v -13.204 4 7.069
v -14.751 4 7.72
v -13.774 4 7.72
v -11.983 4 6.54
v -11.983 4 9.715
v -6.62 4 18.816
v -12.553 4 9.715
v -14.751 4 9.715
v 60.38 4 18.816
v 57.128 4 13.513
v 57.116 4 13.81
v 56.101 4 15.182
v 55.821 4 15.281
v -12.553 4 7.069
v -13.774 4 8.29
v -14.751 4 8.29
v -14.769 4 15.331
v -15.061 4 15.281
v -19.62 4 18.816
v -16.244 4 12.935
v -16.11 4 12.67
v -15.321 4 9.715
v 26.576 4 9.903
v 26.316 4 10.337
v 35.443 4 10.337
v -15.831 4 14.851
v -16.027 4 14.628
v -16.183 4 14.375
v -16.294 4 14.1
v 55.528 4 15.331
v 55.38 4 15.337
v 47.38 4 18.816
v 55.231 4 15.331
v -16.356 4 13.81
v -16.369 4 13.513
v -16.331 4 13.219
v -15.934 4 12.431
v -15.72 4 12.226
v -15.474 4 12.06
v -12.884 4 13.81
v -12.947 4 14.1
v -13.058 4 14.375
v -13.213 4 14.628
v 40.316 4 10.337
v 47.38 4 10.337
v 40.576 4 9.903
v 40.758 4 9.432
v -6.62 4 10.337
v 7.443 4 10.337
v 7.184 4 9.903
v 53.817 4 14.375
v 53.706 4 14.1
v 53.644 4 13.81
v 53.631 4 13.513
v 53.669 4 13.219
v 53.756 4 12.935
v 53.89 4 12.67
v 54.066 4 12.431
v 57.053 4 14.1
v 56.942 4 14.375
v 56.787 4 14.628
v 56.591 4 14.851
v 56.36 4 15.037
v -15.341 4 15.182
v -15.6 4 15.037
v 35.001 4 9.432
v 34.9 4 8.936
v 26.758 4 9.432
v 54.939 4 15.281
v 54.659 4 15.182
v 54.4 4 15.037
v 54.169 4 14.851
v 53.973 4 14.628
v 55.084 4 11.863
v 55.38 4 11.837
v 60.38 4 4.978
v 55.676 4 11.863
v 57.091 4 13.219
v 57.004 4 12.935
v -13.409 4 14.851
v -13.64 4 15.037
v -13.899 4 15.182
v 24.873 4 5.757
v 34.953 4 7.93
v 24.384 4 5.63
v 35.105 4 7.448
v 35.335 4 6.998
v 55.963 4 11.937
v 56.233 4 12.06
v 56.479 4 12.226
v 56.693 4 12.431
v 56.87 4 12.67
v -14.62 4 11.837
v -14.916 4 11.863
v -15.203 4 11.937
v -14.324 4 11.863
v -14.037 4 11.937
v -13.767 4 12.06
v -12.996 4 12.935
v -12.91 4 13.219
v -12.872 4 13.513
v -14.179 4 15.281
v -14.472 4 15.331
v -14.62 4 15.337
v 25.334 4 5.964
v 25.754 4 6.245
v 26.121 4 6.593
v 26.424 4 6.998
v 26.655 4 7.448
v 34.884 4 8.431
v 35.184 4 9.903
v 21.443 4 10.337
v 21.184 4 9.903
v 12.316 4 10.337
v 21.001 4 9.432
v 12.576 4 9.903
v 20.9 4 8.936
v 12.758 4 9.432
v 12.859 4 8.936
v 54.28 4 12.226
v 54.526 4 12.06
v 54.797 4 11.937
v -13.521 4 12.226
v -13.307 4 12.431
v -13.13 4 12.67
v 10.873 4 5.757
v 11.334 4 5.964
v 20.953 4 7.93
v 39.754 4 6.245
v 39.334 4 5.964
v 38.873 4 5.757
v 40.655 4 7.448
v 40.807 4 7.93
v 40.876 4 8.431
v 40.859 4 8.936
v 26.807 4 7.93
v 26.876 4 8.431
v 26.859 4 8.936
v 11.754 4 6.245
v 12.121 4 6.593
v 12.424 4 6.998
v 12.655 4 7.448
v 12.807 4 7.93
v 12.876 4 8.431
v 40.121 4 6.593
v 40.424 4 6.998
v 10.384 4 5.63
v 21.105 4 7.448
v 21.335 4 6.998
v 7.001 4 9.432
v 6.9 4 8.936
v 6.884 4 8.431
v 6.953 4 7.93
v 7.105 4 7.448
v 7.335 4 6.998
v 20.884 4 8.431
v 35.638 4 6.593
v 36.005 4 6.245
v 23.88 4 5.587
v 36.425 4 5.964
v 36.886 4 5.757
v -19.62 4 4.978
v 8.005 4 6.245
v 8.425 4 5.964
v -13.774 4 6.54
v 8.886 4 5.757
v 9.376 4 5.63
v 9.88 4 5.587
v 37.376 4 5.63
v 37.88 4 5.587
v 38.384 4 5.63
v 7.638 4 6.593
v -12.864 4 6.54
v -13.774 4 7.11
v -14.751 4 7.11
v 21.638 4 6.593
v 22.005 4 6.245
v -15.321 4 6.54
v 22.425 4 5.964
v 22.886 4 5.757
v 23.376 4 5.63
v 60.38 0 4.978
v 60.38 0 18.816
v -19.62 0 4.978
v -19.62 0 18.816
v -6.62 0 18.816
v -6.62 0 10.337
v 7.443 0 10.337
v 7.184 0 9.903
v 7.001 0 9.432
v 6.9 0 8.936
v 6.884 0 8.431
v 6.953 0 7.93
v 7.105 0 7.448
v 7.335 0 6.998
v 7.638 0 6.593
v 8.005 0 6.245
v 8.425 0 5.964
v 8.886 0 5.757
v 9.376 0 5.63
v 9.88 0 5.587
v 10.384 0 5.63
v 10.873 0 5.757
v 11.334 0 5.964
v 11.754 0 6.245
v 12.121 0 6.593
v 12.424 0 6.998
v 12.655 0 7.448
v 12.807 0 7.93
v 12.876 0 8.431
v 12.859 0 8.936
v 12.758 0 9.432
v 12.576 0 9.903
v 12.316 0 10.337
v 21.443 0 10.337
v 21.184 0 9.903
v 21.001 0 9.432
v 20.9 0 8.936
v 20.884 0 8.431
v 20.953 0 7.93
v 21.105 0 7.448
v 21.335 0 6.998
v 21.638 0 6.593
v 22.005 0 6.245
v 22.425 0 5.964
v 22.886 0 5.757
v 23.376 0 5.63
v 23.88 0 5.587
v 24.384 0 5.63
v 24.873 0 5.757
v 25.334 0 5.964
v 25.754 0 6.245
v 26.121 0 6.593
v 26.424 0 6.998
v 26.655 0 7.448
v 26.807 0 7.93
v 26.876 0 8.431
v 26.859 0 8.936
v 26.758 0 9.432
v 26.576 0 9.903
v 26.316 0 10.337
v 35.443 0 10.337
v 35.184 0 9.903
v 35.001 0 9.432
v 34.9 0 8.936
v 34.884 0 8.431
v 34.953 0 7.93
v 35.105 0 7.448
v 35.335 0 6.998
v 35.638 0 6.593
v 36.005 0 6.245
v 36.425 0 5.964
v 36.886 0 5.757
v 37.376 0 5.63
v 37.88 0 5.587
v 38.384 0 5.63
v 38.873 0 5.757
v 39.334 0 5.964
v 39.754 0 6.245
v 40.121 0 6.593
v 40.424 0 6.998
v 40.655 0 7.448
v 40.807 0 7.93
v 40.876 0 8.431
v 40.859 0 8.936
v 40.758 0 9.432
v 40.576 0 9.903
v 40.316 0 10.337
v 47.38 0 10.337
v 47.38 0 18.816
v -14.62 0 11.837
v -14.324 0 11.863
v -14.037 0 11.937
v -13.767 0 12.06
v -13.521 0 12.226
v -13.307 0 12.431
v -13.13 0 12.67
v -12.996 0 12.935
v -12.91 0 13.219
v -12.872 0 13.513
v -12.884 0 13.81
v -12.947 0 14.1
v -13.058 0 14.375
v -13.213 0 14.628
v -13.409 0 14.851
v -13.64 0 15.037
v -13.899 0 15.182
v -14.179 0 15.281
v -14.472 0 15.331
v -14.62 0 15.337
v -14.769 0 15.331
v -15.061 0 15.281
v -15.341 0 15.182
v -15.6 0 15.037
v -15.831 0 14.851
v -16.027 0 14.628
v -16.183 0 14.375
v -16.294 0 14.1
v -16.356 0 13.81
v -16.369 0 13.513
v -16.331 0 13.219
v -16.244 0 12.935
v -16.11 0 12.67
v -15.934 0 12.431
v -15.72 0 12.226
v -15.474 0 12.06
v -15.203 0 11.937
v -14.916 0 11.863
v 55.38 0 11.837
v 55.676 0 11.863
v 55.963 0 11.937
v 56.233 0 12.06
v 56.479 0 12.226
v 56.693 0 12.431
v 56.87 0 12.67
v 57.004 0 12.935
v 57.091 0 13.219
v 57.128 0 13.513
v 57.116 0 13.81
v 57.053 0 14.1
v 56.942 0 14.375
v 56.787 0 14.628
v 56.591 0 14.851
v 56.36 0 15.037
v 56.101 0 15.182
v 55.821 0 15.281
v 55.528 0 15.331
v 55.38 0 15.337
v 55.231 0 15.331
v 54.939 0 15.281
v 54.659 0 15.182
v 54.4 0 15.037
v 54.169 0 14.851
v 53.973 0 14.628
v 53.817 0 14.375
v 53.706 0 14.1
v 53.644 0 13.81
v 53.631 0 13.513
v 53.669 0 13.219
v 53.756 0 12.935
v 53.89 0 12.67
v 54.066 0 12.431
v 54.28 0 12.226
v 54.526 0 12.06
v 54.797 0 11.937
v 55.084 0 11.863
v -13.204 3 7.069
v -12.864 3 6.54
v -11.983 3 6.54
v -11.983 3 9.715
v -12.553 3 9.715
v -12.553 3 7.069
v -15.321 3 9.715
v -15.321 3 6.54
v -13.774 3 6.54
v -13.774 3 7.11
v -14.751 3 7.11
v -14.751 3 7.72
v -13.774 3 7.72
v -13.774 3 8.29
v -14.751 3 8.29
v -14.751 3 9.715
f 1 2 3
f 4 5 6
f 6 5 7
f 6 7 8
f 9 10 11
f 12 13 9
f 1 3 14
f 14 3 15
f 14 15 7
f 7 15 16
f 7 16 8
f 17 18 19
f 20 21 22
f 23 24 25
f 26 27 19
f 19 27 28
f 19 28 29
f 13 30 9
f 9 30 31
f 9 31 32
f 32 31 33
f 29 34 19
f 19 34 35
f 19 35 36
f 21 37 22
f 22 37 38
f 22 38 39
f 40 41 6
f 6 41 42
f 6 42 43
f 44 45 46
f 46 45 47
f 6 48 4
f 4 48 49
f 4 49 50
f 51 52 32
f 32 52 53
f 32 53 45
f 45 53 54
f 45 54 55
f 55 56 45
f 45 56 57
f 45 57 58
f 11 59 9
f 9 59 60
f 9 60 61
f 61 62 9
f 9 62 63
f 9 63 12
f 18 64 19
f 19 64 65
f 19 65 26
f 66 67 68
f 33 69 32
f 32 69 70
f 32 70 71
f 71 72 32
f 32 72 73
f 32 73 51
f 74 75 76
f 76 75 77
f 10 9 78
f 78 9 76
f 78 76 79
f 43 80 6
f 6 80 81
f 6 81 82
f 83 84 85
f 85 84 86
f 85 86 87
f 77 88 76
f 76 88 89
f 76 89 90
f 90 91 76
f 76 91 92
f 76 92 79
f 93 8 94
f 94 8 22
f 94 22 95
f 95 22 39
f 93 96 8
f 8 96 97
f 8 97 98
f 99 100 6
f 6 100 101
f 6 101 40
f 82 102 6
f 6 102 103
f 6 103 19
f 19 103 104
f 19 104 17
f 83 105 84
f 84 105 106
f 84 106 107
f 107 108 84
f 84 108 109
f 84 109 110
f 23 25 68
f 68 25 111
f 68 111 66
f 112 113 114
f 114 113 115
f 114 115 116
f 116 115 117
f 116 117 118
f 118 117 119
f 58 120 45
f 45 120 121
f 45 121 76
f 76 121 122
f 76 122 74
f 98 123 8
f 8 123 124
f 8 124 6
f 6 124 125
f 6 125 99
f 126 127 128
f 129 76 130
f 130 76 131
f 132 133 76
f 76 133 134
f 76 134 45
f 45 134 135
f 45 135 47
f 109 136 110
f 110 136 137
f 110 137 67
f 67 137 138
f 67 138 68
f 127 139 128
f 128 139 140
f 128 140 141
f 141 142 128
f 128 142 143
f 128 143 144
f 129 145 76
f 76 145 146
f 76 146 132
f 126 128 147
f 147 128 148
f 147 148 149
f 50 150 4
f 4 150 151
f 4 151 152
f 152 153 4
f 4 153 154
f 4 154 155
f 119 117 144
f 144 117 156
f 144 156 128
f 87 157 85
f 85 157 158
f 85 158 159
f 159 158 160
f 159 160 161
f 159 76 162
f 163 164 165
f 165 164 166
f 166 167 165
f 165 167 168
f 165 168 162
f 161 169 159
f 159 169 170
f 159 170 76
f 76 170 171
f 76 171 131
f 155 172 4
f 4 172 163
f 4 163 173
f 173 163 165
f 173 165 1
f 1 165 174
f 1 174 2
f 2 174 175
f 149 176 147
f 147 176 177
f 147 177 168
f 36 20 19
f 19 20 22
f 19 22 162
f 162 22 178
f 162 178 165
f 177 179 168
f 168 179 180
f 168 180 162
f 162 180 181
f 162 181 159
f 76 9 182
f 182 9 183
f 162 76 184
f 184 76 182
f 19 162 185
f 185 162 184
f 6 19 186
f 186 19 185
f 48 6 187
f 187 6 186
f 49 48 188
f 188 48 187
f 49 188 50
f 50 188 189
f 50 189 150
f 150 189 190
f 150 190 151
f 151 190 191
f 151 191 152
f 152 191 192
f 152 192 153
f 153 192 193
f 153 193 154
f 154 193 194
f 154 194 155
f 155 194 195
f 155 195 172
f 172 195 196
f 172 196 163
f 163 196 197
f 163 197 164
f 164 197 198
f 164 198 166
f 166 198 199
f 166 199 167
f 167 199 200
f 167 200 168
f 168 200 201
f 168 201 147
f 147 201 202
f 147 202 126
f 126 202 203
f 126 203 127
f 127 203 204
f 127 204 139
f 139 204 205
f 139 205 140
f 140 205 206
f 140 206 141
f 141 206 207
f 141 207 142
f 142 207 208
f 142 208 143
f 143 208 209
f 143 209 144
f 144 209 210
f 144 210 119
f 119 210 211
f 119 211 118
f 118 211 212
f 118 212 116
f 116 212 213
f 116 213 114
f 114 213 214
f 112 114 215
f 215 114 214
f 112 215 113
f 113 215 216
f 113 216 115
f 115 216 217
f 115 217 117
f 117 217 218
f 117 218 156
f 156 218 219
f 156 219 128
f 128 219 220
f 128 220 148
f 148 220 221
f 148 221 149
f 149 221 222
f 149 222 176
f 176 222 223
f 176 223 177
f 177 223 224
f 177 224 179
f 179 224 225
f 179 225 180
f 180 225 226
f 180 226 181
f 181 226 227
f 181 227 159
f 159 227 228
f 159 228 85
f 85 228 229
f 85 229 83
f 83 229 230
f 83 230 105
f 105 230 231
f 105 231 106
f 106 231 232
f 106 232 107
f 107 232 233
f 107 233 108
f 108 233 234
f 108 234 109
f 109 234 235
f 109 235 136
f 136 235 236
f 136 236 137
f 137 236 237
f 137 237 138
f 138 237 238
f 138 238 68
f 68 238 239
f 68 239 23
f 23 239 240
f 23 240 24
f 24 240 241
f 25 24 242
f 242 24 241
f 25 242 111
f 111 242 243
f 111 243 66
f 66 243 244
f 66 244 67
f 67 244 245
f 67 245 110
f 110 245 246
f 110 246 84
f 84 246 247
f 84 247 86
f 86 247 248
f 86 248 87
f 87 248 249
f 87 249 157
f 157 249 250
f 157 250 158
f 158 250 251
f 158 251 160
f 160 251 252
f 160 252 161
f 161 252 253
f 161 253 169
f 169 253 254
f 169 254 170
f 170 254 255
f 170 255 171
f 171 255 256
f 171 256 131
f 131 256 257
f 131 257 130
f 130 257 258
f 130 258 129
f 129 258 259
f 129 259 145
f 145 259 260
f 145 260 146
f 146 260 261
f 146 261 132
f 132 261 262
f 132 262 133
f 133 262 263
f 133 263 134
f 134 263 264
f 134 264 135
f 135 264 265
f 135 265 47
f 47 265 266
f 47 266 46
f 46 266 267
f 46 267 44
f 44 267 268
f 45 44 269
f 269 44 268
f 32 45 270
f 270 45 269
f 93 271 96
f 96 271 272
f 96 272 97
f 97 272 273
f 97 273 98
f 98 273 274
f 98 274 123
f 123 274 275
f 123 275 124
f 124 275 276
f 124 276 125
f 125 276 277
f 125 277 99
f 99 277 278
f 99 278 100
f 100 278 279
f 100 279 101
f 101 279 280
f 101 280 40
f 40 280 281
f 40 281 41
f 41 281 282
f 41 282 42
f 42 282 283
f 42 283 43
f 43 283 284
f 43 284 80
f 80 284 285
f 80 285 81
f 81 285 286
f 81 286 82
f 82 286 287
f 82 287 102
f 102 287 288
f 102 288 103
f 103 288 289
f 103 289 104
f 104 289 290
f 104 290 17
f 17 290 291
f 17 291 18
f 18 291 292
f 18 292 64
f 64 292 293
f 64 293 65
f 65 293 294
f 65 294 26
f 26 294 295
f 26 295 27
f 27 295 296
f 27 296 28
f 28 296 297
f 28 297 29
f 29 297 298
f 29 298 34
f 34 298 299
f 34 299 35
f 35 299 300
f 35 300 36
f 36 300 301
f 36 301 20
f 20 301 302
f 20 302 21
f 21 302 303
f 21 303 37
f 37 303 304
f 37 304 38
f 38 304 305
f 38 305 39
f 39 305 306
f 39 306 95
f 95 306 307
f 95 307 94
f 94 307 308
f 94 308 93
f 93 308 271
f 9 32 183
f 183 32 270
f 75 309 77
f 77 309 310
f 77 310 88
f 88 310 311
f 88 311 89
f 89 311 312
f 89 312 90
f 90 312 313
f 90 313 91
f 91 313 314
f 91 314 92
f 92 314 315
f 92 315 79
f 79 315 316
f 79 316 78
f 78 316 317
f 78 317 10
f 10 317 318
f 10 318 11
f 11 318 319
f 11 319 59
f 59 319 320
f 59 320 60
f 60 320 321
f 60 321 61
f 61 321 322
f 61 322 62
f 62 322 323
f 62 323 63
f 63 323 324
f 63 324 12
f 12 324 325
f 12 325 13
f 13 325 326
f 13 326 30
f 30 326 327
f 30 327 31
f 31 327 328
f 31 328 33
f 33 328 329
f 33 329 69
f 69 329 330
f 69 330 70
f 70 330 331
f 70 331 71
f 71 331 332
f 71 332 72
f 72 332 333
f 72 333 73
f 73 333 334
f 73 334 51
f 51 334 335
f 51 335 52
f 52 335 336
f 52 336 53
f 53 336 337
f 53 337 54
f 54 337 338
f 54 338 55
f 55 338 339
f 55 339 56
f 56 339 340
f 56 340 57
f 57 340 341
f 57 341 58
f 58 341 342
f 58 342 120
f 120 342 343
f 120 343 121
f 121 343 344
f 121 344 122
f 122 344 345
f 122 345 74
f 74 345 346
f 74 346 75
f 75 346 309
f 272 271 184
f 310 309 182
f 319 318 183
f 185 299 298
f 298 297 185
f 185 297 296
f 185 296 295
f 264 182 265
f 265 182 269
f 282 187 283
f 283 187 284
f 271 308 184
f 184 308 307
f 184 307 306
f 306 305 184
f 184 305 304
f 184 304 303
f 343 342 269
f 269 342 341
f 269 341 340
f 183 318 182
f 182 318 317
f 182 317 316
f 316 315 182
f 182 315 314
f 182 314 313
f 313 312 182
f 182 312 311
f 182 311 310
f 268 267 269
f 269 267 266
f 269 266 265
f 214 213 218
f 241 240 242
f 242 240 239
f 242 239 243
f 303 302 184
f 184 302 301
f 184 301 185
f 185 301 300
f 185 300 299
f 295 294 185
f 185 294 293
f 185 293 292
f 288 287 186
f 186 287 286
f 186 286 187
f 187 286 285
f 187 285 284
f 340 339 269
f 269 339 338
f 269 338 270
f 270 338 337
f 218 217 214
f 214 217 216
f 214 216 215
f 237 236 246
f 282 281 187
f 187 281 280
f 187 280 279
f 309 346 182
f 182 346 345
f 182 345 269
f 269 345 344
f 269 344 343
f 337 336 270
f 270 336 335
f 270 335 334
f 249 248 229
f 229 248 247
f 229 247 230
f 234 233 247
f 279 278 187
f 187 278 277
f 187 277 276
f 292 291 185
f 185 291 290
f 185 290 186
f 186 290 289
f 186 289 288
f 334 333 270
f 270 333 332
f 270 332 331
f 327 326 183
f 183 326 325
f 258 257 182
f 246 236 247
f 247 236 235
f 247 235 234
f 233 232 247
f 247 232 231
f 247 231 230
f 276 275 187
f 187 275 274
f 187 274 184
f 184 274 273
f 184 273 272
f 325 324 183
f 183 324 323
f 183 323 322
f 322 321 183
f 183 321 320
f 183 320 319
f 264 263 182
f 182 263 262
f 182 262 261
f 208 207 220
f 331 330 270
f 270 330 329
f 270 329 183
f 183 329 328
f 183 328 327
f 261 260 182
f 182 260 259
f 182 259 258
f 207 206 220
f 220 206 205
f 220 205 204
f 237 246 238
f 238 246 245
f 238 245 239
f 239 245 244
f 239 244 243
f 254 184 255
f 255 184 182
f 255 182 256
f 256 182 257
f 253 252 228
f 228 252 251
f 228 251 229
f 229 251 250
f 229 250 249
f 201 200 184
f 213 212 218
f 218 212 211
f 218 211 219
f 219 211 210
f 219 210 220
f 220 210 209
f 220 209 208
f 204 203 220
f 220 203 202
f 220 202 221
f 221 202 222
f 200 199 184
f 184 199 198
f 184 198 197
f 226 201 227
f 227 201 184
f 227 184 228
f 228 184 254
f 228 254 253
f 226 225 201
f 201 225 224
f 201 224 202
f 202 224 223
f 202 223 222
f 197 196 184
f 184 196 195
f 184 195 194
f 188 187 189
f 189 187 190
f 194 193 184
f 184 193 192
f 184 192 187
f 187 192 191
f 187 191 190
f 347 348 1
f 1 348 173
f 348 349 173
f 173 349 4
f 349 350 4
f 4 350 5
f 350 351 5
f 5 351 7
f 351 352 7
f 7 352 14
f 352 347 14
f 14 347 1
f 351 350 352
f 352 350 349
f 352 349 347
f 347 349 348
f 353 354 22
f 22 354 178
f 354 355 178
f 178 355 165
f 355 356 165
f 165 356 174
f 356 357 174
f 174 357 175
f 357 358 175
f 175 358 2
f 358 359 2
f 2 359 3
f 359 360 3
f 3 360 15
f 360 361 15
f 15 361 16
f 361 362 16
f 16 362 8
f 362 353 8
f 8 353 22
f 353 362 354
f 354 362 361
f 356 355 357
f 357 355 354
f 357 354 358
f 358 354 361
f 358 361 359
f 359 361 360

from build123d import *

# Parameters (mm, degrees)
SKETCH1_R           = 1.75
BOSS_EXTRUDE1_DEPTH = 4
CUT_EXTRUDE1_DEPTH  = 1


with BuildPart() as part:
    # Sketch1 → Boss-Extrude1 (new body)
    with BuildSketch(Plane(origin=(0, 0, 0), x_dir=(1, 0, 0), z_dir=(0, 1, 0))):
        with BuildLine():
            Line((-19.620223818, -18.81631662), (-6.620223818, -18.81631662))
            Line((-6.620223818, -18.81631662), (-6.620223818, -10.337442774))
            Line((-6.620223818, -10.337442774), (7.443077754, -10.337442546))
            ThreePointArc((7.443077754, -10.337442546), (9.879776182, -5.587442326), (12.31647461, -10.337442546))
            Line((12.31647461, -10.337442546), (21.443077647, -10.337442397))
            ThreePointArc((21.443077647, -10.337442397), (23.879776182, -5.587442326), (26.316474717, -10.337442397))
            Line((26.316474717, -10.337442397), (35.443077673, -10.337442433))
            ThreePointArc((35.443077673, -10.337442433), (37.879776182, -5.587442326), (40.316474692, -10.337442433))
            Line((40.316474692, -10.337442433), (47.379776182, -10.33744254))
            Line((47.379776182, -10.33744254), (47.379776182, -18.81631662))
            Line((47.379776182, -18.81631662), (60.379776182, -18.81631662))
            Line((60.379776182, -18.81631662), (60.379776182, -4.977921711))
            Line((60.379776182, -4.977921711), (-19.620223818, -4.977921711))
            Line((-19.620223818, -4.977921711), (-19.620223818, -18.81631662))
        make_face()
        with Locations((-14.620223818, -13.58744255)):
            Circle(SKETCH1_R, mode=Mode.SUBTRACT)
        with Locations((55.379776182, -13.58744255)):
            Circle(SKETCH1_R, mode=Mode.SUBTRACT)
    extrude(amount=BOSS_EXTRUDE1_DEPTH)

    # Sketch2 → Cut-Extrude1 (cut)
    with BuildSketch(Plane(origin=(0, 4, 0), x_dir=(1, 0, 0), z_dir=(0, 1, 0))):
        Polygon((-15.320752279, -6.539659084), (-13.773957408, -6.539659084), (-13.773957408, -7.109530878), (-14.750880484, -7.109530878), (-14.750880484, -7.720107802), (-13.773957408, -7.720107802), (-13.773957408, -8.289979596), (-14.750880484, -8.289979596), (-14.750880484, -9.714659084), (-15.320752279, -9.714659084), align=None)
        Polygon((-12.863816182, -6.539659084), (-11.982931767, -6.539659084), (-11.982931767, -9.714659084), (-12.552803561, -9.714659084), (-12.552803561, -7.06882575), (-13.204085613, -7.06882575), align=None)
    extrude(amount=-CUT_EXTRUDE1_DEPTH, mode=Mode.SUBTRACT)


solid = part.part
